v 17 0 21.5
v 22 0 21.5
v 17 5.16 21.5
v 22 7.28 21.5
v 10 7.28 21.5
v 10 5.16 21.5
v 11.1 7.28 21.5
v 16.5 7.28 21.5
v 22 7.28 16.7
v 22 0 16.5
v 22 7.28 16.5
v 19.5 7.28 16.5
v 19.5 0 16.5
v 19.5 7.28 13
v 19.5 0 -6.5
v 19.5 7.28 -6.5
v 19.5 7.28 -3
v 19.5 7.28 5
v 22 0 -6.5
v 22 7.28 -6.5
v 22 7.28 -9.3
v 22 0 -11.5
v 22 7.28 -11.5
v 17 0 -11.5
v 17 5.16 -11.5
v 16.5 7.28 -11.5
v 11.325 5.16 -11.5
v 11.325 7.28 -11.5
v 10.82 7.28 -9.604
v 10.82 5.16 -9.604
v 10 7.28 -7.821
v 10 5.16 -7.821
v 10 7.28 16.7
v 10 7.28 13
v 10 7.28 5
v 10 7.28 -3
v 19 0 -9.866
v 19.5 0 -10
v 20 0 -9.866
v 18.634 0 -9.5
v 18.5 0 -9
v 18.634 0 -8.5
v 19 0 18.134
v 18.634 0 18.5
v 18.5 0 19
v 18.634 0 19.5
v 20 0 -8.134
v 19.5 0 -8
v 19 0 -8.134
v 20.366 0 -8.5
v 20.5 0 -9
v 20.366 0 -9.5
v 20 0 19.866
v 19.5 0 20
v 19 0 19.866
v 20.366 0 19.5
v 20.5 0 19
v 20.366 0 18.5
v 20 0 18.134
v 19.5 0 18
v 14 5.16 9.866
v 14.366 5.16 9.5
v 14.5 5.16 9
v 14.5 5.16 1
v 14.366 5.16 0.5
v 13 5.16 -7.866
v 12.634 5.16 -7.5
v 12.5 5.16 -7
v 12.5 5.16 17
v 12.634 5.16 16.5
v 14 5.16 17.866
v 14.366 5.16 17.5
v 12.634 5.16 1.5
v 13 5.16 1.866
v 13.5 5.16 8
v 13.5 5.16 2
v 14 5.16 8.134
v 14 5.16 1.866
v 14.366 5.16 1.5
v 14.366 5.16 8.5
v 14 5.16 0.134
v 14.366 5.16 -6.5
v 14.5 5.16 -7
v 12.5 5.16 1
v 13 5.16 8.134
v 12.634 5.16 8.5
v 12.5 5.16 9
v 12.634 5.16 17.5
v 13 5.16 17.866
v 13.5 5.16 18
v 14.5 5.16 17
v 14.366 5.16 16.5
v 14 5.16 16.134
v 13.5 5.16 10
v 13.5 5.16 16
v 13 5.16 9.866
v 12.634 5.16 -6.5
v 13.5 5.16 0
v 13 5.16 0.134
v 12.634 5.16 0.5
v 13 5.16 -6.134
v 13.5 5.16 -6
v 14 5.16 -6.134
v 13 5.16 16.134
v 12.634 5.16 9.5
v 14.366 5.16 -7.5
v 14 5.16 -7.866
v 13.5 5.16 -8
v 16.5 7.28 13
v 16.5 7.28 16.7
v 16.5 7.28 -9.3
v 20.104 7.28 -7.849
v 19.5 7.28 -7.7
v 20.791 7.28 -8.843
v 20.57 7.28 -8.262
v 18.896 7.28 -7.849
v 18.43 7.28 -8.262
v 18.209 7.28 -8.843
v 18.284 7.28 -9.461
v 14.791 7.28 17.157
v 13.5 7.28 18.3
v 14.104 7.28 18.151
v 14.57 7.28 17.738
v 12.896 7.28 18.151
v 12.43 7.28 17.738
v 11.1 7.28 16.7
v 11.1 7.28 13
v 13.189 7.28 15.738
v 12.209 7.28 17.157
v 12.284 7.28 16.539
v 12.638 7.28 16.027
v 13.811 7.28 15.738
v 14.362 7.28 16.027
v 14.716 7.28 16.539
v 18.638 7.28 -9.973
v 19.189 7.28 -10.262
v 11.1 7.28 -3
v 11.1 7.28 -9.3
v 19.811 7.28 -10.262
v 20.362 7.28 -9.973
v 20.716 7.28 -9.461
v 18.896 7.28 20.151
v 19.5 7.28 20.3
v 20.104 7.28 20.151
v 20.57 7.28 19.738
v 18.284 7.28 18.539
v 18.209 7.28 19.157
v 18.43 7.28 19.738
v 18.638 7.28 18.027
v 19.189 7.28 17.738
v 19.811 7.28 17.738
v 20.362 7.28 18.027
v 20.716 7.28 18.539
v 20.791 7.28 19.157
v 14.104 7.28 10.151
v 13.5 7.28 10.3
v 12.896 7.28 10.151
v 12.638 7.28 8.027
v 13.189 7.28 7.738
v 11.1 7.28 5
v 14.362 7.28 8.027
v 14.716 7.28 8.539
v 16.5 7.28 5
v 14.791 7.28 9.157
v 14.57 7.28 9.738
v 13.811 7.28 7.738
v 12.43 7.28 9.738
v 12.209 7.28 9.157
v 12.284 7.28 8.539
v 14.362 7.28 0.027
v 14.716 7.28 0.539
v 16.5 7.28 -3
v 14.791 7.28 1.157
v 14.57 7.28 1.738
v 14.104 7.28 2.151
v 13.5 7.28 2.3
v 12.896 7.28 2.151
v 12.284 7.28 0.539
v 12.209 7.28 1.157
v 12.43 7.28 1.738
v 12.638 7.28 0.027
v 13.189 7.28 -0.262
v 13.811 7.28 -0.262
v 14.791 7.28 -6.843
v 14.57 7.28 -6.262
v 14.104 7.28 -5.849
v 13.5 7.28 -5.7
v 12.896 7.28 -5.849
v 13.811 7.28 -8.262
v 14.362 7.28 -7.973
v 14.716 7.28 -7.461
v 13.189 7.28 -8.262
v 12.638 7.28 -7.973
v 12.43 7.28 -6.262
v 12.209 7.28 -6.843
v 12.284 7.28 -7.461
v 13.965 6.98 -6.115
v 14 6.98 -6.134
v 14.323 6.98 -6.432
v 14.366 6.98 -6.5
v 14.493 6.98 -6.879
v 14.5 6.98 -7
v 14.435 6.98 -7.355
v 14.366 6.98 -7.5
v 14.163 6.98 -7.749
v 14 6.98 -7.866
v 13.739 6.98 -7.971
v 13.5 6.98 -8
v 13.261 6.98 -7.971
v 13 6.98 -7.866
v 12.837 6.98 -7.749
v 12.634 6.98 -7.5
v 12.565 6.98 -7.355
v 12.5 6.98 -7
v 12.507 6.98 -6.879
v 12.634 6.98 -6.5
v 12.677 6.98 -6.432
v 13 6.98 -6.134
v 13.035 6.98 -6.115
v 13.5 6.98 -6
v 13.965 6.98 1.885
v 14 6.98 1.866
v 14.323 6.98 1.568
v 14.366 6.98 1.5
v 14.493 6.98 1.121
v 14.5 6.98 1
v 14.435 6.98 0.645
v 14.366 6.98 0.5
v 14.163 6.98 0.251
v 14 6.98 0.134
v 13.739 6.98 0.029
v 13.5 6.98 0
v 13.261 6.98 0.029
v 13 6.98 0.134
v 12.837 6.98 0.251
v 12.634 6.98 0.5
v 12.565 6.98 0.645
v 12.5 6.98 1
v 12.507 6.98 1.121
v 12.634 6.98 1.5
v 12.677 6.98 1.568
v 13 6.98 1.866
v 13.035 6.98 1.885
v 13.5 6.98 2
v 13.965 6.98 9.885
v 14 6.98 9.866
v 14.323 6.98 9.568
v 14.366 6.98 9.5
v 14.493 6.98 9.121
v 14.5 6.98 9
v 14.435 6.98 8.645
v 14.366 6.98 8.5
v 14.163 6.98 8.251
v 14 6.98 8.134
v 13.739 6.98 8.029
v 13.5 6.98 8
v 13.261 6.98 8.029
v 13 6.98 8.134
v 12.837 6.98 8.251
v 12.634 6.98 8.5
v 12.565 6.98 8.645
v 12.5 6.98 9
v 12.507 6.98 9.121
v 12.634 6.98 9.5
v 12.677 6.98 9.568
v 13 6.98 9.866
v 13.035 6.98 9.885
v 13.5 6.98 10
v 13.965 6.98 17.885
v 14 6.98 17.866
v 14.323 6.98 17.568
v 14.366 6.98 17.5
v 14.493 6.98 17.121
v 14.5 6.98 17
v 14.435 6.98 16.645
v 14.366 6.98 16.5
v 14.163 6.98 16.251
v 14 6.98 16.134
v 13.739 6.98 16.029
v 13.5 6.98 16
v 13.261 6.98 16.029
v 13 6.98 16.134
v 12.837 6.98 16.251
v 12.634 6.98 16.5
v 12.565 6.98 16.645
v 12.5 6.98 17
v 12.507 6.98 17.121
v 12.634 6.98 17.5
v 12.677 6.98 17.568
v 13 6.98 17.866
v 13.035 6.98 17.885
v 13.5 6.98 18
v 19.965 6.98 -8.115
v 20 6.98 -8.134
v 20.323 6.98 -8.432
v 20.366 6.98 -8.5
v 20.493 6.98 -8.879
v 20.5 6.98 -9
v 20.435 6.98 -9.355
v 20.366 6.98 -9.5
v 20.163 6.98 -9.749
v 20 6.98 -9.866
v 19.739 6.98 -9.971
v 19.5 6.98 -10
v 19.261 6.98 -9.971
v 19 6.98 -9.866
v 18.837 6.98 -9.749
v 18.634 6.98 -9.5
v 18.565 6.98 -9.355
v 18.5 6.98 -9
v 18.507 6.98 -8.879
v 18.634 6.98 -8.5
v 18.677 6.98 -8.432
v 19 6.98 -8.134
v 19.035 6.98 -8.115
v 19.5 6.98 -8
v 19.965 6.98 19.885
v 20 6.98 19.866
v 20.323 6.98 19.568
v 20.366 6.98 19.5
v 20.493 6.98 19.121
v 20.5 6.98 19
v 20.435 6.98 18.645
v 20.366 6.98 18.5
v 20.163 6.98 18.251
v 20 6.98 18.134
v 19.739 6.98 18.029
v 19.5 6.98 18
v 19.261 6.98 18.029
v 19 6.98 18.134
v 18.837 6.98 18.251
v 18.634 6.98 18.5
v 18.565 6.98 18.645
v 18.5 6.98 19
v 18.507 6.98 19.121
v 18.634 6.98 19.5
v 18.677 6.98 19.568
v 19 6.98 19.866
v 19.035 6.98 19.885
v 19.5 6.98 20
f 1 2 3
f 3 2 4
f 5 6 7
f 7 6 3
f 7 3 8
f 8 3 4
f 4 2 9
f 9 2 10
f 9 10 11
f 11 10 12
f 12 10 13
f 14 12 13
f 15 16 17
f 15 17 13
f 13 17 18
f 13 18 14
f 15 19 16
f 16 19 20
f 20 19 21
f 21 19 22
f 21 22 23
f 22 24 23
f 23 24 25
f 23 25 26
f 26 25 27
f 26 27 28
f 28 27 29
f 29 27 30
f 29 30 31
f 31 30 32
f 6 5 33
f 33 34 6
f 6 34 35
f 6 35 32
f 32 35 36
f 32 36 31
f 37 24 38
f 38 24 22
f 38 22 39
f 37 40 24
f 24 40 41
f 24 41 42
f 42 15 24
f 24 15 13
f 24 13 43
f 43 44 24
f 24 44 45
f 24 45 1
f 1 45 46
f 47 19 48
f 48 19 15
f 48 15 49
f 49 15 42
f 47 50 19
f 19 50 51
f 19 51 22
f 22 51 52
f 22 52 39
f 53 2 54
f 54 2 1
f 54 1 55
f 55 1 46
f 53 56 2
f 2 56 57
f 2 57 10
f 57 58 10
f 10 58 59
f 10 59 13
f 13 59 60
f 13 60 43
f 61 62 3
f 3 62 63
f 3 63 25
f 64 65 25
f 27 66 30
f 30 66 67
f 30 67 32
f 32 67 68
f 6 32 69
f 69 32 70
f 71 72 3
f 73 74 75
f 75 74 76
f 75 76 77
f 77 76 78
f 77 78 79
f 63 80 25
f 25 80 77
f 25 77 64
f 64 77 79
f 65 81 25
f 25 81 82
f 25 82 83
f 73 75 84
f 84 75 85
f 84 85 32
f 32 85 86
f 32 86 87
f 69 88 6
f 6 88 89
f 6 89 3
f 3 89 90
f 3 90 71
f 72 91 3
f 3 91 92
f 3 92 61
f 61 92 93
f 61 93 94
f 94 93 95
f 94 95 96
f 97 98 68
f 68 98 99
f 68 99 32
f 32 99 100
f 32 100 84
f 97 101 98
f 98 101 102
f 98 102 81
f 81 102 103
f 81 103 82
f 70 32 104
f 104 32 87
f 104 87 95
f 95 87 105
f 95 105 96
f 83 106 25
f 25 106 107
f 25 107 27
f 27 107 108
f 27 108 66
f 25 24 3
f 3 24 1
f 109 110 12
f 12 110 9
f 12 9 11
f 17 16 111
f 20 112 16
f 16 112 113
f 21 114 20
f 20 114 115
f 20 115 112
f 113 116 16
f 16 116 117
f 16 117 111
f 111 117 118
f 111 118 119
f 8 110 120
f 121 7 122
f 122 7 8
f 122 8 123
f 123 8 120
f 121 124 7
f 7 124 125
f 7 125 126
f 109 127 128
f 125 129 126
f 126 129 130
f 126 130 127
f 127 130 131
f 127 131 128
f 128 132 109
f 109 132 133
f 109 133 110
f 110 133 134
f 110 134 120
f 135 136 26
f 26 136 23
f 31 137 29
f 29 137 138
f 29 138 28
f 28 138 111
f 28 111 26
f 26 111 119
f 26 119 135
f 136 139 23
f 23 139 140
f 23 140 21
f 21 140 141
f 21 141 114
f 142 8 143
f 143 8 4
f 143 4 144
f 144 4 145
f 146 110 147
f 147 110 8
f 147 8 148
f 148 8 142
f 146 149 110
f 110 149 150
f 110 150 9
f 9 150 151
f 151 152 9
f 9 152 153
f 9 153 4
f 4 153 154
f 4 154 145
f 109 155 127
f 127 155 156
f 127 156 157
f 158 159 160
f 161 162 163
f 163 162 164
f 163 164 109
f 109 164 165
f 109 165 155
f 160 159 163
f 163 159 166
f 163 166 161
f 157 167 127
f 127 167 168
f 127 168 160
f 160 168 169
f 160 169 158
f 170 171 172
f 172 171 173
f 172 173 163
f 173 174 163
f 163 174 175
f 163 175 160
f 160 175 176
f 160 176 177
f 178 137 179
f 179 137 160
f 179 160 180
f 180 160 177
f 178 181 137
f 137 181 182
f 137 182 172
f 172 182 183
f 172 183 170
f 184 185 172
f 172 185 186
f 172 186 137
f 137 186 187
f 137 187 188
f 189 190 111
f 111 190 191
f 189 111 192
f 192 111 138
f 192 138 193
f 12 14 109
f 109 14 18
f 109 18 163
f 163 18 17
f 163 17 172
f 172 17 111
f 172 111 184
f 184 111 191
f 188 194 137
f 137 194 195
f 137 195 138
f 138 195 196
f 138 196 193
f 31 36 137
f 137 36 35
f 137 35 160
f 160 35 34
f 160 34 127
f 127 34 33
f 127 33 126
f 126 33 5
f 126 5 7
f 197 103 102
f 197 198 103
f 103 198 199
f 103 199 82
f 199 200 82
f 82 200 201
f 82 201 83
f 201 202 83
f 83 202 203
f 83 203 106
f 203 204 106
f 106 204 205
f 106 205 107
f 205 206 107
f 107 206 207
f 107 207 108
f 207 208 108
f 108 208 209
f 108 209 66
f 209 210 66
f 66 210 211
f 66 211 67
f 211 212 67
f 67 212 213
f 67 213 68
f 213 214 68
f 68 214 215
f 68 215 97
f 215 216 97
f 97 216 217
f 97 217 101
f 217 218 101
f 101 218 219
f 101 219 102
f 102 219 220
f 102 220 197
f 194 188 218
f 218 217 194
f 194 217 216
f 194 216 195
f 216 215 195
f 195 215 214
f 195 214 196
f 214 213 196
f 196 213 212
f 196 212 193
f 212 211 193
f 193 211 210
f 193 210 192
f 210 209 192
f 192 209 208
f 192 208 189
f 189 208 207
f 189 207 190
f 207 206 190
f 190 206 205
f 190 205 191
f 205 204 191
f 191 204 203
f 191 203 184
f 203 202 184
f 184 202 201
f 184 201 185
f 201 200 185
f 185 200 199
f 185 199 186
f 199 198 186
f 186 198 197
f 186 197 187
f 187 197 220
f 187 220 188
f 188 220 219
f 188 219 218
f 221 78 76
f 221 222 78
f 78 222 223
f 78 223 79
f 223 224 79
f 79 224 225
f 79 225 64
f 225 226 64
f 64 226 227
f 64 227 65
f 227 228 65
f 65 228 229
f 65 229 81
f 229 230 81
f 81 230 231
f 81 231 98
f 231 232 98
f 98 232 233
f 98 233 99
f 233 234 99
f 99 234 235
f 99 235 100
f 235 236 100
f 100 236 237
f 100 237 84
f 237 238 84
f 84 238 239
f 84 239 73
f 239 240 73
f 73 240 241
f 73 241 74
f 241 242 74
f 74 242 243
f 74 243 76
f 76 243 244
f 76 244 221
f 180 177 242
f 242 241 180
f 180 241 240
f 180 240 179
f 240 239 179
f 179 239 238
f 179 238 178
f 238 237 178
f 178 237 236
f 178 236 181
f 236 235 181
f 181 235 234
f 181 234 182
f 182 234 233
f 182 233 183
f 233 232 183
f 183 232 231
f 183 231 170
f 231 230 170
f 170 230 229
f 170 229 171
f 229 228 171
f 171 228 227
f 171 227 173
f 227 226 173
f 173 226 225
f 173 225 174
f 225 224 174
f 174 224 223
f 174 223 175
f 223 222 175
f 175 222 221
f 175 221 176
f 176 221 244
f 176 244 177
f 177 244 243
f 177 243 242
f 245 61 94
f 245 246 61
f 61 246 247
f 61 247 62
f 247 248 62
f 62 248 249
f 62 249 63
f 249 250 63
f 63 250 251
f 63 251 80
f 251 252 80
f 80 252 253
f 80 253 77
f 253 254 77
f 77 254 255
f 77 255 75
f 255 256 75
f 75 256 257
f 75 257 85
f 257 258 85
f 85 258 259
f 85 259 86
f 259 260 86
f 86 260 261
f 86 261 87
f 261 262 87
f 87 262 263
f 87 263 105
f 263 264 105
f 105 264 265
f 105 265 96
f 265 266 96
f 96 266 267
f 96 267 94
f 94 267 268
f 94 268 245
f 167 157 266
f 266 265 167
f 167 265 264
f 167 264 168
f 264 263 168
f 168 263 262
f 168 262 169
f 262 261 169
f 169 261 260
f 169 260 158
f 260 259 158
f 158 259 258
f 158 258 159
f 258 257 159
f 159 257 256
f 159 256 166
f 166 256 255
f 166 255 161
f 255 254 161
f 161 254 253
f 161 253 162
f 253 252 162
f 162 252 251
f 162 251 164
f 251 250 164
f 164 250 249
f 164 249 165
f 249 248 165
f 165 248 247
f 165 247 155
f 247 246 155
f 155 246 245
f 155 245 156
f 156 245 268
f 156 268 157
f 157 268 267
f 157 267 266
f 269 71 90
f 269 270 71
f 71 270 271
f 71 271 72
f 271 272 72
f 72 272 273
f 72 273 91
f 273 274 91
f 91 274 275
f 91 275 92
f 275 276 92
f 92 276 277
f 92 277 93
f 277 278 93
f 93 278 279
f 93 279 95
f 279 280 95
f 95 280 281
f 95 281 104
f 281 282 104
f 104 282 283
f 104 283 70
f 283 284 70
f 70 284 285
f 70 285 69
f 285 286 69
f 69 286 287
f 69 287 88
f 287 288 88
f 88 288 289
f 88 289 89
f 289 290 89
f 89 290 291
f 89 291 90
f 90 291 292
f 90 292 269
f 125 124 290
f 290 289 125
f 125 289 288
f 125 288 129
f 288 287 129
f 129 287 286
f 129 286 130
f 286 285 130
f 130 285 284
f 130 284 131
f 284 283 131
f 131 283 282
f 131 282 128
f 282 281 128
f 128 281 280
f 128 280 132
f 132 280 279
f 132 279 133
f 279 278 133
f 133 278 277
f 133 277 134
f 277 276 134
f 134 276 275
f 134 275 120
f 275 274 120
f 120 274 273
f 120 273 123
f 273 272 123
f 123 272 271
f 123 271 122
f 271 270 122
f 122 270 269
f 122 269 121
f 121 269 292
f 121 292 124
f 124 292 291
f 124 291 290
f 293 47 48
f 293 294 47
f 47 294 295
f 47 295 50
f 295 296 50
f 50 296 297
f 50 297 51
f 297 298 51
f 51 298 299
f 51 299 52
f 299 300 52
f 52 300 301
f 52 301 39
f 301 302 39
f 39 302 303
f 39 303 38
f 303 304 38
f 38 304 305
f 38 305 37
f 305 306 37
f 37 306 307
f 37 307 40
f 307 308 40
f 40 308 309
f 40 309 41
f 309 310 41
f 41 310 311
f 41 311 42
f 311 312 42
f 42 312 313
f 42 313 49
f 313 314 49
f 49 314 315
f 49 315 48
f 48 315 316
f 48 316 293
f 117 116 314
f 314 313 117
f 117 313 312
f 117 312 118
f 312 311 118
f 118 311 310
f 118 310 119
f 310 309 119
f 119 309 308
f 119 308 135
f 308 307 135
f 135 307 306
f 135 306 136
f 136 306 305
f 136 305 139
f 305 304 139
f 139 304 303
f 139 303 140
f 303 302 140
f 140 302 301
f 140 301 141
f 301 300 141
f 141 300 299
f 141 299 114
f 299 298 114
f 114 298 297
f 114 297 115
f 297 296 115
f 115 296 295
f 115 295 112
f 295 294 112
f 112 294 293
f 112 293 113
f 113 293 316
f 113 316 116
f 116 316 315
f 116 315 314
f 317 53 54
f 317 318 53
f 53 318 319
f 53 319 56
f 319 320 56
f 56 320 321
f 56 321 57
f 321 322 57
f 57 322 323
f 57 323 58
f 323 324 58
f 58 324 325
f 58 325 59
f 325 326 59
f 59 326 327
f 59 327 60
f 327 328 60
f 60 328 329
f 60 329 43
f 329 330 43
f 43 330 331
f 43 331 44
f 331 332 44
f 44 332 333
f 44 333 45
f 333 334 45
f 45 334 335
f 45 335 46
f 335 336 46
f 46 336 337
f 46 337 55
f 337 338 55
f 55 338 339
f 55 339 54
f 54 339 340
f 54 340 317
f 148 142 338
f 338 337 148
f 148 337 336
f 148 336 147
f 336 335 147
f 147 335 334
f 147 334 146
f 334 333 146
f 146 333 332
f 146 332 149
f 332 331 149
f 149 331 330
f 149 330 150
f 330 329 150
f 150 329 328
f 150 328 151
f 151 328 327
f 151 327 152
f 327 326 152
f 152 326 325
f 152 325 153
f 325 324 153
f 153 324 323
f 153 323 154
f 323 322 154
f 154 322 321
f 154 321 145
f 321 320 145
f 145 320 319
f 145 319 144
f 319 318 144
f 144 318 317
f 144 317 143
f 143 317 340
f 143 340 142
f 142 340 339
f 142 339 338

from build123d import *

# Parameters (mm, degrees)
IZIM3_W                                          = 3.5
IZIM3_H                                          = 23
IZIM3_H_2                                        = 5
IZIM3_W_2                                        = 2.5
Y_KSEKLIK_EKSTR_ZYON3_DEPTH                      = 8.28
IZIM4_W                                          = 7
IZIM4_H                                          = 5.16
KES_EKSTR_ZYON1_DEPTH                            = 34
IZIM11_W                                         = 12
IZIM11_H                                         = 33
KES_EKSTR_ZYON2_DEPTH                            = 1
M2_D_Z_BA_L_MAKINE_VIDAS_IN_HAV_A_DE_D           = 2
M2_D_Z_BA_L_MAKINE_VIDAS_IN_HAV_A_DE_CSINK_D     = 2.6
M2_D_Z_BA_L_MAKINE_VIDAS_IN_HAV_A_DE_CSINK_ANGLE = 90


with BuildPart() as part:
    # Çizim3 → Yükseklik-Ekstrüzyon3 (new body)
    with BuildSketch(Plane(origin=(0, 0, 0), x_dir=(1, 0, 0), z_dir=(0, 1, 0))):
        with BuildLine():
            Line((16, 6.5), (16, 11.5))
            Line((16, 11.5), (11.324751653, 11.5))
            ThreePointArc((11.324751653, 11.5), (10.819882158, 9.603828792), (10, 7.821091654))
            Line((10, 7.821091654), (10, -21.5))
            Line((10, -21.5), (16, -21.5))
            Line((16, -21.5), (16, -16.5))
            Line((16, -16.5), (16, 6.5))
        make_face()
        with Locations((17.75, -5)):
            Rectangle(IZIM3_W, IZIM3_H)
        with Locations((17.75, 9)):
            Rectangle(IZIM3_W, IZIM3_H_2)
        with Locations((20.75, 9)):
            Rectangle(IZIM3_W_2, IZIM3_H_2)
        with Locations((17.75, -19)):
            Rectangle(IZIM3_W, IZIM3_H_2)
        with Locations((20.75, -19)):
            Rectangle(IZIM3_W_2, IZIM3_H_2)
    extrude(amount=Y_KSEKLIK_EKSTR_ZYON3_DEPTH)

    # Çizim4 → Kes-Ekstrüzyon1 (cut, through all)
    with BuildSketch(Plane.XY.offset(21.5)):
        with Locations((13.5, 2.58)):
            Rectangle(IZIM4_W, IZIM4_H)
    extrude(amount=-KES_EKSTR_ZYON1_DEPTH, mode=Mode.SUBTRACT)

    # Çizim11 → Kes-Ekstrüzyon2 (cut)
    with BuildSketch(Plane(origin=(0, 8.28, 0), x_dir=(1, 0, 0), z_dir=(0, 1, 0))):
        with Locations((16, -5)):
            Rectangle(IZIM11_W, IZIM11_H)
    extrude(amount=-KES_EKSTR_ZYON2_DEPTH, mode=Mode.SUBTRACT)

    # M2 Düz Başlı Makine Vidası İçin Havşa_ DEĞİŞTİREBİLİRİZ (through all)
    with Locations(Plane(origin=(19.5, 7.28, 19), x_dir=(0, 0, 1), z_dir=(0, 1, 0))):
        with Locations((0, 0), (-28, 0), (-2, -6), (-10, -6), (-18, -6), (-26, -6)):
            CounterSinkHole(M2_D_Z_BA_L_MAKINE_VIDAS_IN_HAV_A_DE_D / 2, M2_D_Z_BA_L_MAKINE_VIDAS_IN_HAV_A_DE_CSINK_D / 2, counter_sink_angle=M2_D_Z_BA_L_MAKINE_VIDAS_IN_HAV_A_DE_CSINK_ANGLE)


solid = part.part
